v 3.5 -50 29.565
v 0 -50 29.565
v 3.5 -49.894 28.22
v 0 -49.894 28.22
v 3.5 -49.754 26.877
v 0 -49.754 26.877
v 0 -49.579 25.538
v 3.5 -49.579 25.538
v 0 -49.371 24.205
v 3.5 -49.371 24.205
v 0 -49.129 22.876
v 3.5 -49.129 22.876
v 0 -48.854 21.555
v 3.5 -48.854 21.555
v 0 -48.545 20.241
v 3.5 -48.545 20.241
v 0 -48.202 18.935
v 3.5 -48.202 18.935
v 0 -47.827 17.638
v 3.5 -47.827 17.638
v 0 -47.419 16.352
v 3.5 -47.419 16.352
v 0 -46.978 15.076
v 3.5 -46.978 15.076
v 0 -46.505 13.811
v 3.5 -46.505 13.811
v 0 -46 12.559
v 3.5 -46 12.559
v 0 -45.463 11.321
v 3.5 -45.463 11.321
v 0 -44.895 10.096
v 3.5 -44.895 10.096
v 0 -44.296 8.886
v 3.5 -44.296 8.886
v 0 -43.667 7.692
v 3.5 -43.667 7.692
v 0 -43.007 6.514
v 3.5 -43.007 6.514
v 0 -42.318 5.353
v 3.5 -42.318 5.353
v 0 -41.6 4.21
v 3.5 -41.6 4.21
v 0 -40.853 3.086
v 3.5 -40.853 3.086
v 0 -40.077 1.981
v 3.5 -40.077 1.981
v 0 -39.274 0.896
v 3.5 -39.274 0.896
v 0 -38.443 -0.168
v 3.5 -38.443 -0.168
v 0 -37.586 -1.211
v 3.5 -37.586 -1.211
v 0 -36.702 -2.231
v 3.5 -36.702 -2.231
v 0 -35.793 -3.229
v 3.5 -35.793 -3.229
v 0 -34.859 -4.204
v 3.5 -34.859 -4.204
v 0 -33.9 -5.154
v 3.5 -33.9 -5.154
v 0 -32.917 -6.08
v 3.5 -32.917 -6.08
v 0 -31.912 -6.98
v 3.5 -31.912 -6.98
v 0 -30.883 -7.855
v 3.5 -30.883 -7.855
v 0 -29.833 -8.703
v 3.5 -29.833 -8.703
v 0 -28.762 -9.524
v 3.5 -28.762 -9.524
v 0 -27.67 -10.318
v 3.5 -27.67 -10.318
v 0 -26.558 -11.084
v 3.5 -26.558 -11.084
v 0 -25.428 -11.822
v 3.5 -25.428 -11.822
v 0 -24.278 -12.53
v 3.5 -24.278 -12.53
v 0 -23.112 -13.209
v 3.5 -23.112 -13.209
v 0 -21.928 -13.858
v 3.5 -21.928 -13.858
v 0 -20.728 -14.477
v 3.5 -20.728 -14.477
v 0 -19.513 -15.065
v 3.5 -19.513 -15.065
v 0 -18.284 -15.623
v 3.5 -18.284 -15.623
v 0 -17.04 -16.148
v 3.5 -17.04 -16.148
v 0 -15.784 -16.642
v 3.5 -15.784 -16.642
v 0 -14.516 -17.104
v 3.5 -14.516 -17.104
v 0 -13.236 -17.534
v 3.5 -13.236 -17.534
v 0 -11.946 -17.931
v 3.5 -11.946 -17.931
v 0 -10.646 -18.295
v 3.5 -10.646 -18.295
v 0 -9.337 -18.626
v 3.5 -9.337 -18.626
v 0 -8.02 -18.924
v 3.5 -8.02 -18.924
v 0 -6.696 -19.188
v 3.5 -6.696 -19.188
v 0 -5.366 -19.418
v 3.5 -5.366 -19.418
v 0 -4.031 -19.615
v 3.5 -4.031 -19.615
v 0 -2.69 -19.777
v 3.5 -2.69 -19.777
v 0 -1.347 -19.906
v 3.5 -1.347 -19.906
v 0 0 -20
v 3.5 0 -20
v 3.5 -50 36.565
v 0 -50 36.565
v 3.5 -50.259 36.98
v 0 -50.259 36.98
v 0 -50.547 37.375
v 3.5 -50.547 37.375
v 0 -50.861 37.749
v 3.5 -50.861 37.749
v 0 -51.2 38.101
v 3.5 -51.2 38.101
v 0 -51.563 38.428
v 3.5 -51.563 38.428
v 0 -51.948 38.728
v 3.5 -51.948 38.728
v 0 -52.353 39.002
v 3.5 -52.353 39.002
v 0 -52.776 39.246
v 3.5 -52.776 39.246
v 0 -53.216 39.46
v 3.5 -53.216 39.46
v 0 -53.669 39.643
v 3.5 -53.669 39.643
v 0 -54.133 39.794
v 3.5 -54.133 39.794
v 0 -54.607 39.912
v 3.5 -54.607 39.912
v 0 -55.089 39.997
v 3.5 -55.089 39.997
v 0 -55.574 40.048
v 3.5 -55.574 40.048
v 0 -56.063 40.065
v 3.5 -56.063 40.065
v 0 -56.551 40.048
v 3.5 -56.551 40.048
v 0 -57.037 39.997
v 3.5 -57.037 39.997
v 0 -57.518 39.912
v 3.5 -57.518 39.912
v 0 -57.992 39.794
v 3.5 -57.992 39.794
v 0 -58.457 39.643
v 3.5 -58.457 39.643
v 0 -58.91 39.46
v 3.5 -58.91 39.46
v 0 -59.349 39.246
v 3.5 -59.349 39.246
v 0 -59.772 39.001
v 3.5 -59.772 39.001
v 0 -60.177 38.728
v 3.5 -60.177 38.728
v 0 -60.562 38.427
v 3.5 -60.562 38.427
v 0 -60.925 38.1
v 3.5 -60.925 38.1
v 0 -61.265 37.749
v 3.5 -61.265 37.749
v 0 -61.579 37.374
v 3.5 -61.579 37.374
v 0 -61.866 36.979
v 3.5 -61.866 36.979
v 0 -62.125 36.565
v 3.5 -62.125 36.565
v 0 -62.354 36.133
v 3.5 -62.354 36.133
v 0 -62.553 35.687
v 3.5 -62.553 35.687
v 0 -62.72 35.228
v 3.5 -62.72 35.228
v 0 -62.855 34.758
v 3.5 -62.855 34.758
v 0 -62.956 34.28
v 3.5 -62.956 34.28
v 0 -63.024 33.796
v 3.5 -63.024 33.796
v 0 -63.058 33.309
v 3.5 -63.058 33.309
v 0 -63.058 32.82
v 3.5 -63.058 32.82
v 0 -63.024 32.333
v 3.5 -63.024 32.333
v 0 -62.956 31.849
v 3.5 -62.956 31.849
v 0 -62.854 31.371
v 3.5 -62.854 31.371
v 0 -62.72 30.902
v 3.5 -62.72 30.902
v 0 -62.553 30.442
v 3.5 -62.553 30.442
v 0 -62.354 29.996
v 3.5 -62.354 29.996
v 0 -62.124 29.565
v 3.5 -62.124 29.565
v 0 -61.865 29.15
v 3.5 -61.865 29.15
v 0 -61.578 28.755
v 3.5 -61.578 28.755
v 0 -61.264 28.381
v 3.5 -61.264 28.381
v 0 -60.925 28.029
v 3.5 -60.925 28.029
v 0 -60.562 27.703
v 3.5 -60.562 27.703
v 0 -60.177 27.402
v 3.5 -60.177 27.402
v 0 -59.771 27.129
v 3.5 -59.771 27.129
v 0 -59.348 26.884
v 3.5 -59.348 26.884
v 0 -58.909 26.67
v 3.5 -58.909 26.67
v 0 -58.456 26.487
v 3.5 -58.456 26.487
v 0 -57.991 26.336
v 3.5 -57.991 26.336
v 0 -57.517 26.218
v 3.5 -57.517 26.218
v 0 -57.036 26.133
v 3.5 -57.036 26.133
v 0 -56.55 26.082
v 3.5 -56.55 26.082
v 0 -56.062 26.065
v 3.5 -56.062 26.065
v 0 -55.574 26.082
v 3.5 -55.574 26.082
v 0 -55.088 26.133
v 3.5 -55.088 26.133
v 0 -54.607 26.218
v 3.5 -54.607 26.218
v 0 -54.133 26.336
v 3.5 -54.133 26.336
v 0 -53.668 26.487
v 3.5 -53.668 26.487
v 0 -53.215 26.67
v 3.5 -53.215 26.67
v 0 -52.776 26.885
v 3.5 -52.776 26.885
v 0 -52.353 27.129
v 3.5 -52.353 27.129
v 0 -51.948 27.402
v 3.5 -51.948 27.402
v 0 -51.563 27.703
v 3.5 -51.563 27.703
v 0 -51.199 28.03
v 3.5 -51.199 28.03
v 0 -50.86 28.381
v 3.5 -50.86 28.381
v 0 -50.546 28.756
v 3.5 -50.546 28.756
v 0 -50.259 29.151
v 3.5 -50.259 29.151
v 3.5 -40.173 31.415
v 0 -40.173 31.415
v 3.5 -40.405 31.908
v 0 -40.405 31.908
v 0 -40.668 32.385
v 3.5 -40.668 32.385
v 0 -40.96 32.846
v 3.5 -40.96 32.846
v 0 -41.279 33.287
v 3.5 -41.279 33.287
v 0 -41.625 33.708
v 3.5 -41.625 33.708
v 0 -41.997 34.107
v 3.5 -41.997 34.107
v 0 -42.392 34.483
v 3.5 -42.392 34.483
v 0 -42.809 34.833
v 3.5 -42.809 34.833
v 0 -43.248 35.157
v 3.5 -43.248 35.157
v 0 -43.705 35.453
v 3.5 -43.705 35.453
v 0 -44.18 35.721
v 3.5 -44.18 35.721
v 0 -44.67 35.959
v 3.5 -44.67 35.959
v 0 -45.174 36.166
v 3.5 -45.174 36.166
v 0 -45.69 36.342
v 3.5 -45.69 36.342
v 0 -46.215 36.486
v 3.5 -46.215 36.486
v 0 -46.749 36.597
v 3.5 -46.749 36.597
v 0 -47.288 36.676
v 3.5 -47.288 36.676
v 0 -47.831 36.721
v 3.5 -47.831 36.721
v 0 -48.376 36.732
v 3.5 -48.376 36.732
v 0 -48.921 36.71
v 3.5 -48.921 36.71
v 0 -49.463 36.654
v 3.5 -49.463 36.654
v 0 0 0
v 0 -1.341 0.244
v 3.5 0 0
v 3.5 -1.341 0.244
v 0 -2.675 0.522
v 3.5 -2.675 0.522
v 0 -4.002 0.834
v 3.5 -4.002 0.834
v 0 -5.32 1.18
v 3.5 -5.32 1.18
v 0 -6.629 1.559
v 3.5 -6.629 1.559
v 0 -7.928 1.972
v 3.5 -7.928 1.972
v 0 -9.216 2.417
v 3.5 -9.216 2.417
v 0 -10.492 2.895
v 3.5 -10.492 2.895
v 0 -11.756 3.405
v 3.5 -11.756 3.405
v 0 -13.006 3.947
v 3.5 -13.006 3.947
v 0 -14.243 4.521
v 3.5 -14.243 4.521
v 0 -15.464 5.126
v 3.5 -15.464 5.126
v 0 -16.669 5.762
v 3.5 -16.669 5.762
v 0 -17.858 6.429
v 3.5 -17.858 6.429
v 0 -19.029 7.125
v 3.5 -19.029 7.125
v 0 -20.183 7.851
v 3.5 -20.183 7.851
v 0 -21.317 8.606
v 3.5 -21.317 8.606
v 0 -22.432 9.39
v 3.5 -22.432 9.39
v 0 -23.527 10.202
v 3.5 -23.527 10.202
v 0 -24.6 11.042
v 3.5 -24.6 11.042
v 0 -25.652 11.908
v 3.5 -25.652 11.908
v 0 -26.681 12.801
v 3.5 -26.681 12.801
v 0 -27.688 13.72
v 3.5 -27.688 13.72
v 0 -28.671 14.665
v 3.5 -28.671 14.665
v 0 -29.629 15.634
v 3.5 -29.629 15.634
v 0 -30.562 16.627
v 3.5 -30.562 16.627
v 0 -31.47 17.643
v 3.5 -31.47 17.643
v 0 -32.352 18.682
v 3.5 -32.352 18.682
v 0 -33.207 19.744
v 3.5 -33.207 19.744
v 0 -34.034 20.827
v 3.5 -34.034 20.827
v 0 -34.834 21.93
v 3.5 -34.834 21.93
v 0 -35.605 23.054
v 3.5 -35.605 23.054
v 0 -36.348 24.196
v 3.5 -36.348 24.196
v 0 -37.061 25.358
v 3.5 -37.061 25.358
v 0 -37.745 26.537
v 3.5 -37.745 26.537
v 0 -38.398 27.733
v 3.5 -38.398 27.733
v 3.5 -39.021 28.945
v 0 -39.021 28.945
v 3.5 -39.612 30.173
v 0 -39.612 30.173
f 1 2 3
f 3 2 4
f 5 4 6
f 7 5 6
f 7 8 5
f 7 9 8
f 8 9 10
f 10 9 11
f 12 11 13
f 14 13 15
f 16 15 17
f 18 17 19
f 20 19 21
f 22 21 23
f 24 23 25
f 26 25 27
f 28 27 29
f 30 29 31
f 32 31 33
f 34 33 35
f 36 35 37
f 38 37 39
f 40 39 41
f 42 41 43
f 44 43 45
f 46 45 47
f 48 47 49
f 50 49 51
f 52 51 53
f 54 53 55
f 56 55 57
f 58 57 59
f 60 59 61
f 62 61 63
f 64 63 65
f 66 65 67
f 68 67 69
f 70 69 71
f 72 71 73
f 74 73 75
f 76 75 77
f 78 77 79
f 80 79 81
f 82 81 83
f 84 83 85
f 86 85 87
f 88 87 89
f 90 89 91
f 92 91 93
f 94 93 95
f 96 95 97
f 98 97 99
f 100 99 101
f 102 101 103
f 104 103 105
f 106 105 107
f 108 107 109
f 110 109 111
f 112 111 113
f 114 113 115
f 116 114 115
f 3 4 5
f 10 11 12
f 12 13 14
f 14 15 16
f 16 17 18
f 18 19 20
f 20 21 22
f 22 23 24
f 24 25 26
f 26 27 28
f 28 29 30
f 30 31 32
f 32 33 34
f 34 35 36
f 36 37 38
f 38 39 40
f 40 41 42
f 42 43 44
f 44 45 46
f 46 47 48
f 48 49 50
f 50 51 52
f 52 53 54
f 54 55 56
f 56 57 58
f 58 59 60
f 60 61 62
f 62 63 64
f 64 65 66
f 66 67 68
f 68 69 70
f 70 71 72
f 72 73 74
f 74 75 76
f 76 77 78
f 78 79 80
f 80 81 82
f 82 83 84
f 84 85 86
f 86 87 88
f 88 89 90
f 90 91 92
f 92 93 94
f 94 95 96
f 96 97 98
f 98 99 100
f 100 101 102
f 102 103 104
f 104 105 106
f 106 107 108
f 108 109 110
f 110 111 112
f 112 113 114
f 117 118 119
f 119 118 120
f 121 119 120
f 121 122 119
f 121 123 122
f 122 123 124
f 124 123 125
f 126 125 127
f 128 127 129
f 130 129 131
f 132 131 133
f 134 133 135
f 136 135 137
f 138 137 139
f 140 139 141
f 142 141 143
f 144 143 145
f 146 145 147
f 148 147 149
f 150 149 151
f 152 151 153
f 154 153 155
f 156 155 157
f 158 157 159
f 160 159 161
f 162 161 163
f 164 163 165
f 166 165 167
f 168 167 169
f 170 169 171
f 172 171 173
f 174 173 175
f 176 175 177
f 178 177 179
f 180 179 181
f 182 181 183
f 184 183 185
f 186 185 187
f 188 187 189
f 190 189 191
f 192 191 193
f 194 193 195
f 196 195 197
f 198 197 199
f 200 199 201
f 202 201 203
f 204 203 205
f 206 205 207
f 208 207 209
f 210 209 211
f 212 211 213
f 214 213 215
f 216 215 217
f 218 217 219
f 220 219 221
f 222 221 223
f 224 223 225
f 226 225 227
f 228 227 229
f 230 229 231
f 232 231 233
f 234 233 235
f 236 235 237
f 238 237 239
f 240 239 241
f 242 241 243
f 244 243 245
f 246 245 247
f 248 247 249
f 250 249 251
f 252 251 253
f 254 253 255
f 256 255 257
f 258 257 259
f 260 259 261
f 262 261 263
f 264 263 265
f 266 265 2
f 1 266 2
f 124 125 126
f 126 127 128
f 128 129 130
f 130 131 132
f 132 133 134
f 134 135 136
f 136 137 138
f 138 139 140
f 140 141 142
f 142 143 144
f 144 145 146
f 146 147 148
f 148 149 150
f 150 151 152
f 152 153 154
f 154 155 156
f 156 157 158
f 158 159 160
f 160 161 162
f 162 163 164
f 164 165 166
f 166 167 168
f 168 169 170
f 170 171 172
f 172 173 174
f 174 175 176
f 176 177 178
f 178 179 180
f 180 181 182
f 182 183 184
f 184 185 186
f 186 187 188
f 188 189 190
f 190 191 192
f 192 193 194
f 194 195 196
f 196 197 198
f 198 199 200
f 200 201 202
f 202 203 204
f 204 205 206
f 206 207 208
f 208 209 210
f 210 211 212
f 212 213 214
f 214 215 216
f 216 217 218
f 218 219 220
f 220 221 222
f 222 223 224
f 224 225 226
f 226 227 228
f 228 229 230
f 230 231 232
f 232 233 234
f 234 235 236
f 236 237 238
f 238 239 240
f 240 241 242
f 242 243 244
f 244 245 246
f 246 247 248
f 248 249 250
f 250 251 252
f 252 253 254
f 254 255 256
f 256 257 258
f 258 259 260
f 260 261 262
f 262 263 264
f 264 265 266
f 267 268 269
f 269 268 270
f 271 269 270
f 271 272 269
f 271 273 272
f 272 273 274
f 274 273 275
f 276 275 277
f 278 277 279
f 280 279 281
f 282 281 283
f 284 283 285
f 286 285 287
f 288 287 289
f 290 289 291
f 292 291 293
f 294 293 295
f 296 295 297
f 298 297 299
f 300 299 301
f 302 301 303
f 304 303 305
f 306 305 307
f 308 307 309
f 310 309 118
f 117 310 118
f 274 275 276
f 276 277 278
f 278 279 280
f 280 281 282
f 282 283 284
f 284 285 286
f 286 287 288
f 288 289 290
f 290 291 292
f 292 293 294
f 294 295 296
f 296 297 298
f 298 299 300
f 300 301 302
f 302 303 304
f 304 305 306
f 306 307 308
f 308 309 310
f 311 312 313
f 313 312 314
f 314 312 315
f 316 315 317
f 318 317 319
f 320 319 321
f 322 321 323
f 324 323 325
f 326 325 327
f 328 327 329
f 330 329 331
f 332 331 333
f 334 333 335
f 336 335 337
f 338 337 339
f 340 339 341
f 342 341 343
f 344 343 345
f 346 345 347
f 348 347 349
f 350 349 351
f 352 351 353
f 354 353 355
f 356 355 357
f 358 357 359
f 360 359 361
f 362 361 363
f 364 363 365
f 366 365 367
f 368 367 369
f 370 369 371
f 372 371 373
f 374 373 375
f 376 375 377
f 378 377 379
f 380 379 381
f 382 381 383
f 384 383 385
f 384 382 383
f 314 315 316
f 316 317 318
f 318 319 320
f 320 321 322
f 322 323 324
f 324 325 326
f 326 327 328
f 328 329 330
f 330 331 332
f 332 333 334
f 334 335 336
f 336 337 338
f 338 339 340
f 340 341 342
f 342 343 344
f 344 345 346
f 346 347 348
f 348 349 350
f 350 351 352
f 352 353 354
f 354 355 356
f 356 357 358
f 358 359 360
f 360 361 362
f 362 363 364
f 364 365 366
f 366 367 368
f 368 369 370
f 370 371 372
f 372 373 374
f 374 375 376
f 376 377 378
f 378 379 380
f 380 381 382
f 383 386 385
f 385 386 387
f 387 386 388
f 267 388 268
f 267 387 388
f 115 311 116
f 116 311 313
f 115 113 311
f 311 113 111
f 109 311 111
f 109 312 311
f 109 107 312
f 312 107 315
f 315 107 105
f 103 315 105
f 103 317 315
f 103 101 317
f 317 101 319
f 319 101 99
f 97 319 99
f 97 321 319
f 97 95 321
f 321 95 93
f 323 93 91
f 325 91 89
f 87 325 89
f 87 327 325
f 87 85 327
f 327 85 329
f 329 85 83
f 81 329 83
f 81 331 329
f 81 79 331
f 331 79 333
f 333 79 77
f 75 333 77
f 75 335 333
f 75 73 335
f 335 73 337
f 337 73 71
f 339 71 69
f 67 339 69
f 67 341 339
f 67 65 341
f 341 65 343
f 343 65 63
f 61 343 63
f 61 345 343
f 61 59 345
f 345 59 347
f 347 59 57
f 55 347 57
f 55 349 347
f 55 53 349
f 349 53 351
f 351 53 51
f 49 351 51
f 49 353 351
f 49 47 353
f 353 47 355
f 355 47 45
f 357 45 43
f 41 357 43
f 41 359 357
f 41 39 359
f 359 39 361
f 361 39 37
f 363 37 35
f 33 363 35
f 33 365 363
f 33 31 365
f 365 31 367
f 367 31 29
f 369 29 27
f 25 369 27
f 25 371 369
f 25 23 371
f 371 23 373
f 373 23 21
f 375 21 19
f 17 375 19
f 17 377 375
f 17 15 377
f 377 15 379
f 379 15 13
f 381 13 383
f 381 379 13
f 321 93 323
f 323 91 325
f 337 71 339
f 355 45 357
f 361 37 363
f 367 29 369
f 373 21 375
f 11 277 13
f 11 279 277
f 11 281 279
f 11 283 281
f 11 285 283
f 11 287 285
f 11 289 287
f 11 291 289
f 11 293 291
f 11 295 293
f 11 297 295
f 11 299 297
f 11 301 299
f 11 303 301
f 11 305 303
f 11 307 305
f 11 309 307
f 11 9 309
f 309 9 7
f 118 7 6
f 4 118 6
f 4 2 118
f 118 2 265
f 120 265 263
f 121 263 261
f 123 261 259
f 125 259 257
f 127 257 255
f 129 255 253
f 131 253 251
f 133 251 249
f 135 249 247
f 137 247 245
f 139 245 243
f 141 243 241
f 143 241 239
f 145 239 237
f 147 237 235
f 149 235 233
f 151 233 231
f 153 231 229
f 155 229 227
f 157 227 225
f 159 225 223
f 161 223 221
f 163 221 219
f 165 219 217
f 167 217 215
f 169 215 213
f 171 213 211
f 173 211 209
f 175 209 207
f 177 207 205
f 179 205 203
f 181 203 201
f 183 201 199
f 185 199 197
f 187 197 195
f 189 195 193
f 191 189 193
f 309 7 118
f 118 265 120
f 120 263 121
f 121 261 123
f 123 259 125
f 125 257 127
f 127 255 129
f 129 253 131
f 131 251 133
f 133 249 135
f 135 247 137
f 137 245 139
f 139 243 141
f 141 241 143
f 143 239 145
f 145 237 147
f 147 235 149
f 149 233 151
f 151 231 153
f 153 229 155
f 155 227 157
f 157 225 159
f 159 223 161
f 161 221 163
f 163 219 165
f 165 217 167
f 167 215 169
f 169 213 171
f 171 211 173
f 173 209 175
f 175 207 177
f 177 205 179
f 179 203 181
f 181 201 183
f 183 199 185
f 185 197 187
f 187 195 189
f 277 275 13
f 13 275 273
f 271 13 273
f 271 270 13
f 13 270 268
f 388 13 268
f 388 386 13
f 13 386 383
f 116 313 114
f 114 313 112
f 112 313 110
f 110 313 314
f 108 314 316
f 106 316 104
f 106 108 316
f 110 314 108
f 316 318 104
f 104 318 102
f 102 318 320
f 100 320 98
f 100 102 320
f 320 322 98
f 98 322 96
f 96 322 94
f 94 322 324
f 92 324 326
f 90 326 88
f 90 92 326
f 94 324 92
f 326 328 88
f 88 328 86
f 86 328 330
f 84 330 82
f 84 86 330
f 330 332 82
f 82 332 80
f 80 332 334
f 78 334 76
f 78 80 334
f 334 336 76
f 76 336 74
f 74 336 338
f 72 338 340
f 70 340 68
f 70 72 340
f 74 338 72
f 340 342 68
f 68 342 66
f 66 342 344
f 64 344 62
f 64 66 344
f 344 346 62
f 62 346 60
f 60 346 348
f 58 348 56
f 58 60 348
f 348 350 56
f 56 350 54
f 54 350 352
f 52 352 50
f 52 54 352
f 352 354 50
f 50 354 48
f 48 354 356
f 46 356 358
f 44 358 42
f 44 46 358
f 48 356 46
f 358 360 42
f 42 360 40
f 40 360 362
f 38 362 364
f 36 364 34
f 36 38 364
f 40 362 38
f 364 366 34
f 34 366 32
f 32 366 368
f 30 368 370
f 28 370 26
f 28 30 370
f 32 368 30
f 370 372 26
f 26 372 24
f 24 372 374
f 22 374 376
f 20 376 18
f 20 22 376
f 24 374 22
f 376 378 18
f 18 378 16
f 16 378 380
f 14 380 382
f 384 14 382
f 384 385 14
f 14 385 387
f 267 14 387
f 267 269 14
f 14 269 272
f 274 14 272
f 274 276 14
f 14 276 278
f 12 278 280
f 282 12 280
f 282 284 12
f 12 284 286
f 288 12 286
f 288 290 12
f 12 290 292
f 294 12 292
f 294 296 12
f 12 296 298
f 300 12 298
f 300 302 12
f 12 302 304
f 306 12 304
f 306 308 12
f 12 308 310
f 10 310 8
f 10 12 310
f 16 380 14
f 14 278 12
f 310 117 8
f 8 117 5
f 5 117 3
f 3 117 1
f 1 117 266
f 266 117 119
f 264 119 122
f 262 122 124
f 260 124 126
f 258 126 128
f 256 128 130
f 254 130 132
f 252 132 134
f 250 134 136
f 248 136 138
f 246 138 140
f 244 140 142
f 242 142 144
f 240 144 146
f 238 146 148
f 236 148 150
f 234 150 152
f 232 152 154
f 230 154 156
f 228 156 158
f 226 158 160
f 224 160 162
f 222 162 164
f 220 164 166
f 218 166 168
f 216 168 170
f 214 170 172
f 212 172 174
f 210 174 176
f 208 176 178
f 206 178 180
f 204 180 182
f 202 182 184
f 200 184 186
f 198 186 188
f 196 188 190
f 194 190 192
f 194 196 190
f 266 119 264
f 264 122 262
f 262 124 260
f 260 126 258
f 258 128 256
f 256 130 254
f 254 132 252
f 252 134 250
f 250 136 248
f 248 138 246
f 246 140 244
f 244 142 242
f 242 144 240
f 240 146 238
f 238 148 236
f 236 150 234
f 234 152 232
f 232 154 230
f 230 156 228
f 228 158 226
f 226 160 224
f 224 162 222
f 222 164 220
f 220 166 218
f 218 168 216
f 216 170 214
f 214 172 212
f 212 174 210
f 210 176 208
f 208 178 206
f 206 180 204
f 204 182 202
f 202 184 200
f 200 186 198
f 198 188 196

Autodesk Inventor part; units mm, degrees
ref_plane "YZ Plane" through (0, 0, 0) normal (1, 0, 0) x (0, 1, 0)
ref_plane "XZ Plane" through (0, 0, 0) normal (0, 1, 0) x (-1, 0, 0)
ref_plane "XY Plane" through (0, 0, 0) normal (0, 0, 1) x (1, 0, 0)
sketch "Sketch1" plane through (0, 0, 0) normal (1, 0, 0) x (0, 1, 0)
  line L0 (0, 0) -> (0, -20)
  line L1 (0, 0) -> (20, 0) construction
  arc A0 (-50, 29.5654) -> (0, -20) centre (3.0398, 33.0683) ccw
  arc A1 (-40.1726, 31.4151) -> (0, 0) centre (8.9221, 52.8024) ccw
  arc A2 (-40.1726, 31.4151) -> (-50.0004, 36.5654) centre (-48.2889, 27.8794) ccw
  arc A3 (-50.0004, 36.5654) -> (-50, 29.5654) centre (-56.0624, 33.0651) ccw
  dimension "d0" = 20
  dimension "d1" = 90
  dimension "d2" = 50
  dimension "d3" = 10
  dimension "d5" = 7
  dimension "d6" = 7
extrude "Extrusion1" add sketch "Sketch1" along normal blind 3.5
properties part number "leg"
